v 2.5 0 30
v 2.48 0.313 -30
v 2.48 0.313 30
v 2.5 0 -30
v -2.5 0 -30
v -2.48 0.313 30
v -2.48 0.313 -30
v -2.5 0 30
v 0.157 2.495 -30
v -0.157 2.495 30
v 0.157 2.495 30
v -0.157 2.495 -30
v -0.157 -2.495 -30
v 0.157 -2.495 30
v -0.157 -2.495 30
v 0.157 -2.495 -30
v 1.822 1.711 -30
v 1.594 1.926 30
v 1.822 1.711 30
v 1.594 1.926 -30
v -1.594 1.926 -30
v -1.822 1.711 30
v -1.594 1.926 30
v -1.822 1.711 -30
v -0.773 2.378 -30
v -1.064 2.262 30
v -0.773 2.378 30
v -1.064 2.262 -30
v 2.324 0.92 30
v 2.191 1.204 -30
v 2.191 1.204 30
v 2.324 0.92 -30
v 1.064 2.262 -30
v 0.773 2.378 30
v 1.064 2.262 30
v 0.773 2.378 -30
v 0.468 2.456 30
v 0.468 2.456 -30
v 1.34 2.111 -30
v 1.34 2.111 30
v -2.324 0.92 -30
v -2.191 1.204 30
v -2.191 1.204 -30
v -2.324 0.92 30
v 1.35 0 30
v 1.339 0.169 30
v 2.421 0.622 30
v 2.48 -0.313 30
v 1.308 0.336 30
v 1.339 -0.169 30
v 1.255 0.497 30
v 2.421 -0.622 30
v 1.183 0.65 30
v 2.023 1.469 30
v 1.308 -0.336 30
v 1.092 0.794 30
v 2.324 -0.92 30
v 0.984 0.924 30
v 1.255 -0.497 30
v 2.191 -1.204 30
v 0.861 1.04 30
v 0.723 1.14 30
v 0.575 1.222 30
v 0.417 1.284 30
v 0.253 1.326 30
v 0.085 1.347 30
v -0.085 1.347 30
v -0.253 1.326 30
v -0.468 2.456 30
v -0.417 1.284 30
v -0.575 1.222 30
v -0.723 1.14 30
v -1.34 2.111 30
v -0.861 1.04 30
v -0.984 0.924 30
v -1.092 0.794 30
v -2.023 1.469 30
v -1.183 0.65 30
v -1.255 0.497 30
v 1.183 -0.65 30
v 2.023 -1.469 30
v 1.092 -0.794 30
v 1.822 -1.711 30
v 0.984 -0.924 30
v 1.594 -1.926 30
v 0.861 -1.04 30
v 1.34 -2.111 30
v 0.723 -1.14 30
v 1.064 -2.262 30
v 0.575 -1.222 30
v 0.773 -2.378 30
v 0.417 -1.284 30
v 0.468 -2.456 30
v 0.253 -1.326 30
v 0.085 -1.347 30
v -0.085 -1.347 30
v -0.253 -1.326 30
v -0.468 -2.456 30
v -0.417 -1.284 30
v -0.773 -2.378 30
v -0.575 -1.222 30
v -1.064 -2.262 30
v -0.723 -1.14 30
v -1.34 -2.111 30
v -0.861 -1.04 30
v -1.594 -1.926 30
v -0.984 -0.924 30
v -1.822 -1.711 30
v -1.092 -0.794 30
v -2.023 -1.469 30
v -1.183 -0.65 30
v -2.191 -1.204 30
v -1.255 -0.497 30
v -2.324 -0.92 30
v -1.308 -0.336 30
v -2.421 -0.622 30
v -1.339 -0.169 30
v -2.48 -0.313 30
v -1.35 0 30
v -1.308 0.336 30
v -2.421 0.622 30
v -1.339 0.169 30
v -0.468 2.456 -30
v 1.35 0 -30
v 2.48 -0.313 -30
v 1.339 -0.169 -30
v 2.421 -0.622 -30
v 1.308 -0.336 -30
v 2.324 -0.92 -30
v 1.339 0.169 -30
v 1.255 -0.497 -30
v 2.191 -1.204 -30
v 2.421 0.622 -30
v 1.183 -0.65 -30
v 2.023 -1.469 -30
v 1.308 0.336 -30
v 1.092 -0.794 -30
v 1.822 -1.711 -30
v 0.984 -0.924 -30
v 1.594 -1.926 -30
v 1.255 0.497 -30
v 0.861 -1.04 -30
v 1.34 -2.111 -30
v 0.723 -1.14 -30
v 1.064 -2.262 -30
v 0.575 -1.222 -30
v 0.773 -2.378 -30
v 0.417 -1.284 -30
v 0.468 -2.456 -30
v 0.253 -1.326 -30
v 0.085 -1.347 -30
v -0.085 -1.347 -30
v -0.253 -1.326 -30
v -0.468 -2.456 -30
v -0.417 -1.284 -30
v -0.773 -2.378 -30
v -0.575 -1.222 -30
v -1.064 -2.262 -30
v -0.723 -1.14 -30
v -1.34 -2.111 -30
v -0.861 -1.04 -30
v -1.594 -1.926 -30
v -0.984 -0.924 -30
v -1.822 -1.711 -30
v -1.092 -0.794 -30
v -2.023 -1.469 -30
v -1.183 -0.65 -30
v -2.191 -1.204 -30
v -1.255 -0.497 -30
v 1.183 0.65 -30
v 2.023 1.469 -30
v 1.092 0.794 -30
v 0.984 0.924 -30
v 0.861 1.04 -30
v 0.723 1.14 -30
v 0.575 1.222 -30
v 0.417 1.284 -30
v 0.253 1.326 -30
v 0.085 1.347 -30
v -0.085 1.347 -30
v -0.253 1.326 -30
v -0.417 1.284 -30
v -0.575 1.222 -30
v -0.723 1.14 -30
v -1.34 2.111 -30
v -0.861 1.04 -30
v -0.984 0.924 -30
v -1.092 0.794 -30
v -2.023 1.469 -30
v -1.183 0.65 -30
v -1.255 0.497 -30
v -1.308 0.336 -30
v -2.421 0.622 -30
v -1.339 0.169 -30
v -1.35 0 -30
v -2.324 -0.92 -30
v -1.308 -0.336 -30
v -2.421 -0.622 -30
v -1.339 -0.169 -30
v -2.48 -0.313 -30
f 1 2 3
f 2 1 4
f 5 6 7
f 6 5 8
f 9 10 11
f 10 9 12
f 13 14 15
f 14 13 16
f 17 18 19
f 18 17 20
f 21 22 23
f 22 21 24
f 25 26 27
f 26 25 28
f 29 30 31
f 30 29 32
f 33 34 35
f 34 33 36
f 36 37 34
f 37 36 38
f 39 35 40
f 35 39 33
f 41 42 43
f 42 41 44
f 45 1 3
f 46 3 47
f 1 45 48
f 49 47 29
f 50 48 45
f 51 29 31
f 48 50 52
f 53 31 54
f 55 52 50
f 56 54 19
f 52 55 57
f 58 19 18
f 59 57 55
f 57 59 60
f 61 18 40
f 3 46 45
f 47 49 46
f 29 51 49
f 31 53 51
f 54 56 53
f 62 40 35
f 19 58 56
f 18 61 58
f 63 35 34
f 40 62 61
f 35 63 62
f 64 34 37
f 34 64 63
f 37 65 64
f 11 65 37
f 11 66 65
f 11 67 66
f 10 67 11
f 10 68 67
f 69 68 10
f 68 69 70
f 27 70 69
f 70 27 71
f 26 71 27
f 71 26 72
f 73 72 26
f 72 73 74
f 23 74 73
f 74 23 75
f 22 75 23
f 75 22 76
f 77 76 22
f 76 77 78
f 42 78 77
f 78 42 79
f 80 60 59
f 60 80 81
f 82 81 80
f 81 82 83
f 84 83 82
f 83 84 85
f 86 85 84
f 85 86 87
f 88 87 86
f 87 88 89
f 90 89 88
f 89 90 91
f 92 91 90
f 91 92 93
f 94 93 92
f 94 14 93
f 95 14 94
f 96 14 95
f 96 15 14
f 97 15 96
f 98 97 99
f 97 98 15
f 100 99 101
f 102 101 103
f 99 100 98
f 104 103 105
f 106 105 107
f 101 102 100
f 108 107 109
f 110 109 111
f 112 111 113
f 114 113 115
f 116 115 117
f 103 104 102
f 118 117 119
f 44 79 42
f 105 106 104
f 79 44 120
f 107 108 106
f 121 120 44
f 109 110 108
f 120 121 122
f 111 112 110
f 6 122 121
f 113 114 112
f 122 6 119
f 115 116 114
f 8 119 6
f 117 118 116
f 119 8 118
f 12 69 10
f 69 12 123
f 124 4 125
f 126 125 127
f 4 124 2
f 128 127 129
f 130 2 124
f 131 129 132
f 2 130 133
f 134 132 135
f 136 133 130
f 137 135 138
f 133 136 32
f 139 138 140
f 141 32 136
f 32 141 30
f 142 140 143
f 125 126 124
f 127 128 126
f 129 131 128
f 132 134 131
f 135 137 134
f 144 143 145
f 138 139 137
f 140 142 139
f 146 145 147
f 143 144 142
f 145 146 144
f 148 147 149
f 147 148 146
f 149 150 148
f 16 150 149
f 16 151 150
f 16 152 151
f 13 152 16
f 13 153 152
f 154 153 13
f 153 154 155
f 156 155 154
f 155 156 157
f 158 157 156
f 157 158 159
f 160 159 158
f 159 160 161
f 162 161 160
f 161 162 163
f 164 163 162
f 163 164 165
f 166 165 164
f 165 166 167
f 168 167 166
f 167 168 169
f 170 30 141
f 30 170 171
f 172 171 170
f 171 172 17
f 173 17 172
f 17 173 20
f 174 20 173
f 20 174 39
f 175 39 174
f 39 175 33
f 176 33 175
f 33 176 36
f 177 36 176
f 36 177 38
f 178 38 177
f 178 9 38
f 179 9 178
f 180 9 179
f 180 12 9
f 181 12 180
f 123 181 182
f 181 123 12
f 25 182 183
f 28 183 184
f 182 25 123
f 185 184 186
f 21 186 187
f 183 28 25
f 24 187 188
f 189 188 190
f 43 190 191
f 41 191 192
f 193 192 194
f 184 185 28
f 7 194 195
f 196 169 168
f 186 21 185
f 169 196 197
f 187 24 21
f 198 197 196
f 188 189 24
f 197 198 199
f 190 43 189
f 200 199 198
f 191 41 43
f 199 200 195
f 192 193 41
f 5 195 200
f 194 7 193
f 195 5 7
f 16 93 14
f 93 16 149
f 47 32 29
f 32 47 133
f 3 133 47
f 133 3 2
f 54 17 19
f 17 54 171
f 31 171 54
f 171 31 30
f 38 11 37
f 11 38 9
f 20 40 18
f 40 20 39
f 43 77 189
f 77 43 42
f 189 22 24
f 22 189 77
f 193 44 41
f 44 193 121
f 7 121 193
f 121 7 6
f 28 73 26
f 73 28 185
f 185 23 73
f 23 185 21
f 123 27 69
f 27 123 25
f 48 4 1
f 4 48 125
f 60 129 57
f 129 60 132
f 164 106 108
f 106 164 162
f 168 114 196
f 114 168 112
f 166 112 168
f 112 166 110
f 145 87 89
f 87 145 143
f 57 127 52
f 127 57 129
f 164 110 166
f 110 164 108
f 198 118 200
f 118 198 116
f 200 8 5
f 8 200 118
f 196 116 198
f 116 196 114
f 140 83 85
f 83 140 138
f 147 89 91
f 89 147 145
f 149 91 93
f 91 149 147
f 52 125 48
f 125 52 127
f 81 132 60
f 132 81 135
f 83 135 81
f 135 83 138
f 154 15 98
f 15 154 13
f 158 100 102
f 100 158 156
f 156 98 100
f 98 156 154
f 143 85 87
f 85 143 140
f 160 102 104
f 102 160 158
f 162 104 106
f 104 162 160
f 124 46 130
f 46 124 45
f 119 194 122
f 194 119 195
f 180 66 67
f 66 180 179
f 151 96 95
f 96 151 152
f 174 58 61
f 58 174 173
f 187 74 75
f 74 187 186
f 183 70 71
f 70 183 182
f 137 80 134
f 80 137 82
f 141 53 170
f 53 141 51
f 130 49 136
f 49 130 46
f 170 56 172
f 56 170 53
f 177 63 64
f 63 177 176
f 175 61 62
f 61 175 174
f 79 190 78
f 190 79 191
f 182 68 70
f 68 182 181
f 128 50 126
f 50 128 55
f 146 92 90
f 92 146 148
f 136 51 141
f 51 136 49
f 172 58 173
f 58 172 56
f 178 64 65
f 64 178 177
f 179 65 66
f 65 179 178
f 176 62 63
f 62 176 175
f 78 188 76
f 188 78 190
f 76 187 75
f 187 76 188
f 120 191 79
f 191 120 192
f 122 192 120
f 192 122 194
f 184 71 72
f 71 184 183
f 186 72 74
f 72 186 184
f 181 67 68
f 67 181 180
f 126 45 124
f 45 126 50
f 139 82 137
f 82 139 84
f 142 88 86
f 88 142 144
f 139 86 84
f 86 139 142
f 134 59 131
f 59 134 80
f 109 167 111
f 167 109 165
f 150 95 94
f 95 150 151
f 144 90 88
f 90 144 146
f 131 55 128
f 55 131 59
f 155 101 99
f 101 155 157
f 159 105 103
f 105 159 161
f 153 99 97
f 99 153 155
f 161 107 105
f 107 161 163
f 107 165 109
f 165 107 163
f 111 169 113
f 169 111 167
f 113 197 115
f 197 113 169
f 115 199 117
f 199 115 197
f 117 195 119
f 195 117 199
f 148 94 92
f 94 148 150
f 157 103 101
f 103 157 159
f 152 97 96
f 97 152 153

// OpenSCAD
$fn = 50;


difference() {
	union() {
		translate(v = [0, 0, -30.0000000000]) {
			cylinder(h = 60, r = 2.5000000000);
		}
	}
	union() {
		translate(v = [0, 0, -100.0000000000]) {
			cylinder(h = 200, r = 1.3500000000);
		}
	}
}
